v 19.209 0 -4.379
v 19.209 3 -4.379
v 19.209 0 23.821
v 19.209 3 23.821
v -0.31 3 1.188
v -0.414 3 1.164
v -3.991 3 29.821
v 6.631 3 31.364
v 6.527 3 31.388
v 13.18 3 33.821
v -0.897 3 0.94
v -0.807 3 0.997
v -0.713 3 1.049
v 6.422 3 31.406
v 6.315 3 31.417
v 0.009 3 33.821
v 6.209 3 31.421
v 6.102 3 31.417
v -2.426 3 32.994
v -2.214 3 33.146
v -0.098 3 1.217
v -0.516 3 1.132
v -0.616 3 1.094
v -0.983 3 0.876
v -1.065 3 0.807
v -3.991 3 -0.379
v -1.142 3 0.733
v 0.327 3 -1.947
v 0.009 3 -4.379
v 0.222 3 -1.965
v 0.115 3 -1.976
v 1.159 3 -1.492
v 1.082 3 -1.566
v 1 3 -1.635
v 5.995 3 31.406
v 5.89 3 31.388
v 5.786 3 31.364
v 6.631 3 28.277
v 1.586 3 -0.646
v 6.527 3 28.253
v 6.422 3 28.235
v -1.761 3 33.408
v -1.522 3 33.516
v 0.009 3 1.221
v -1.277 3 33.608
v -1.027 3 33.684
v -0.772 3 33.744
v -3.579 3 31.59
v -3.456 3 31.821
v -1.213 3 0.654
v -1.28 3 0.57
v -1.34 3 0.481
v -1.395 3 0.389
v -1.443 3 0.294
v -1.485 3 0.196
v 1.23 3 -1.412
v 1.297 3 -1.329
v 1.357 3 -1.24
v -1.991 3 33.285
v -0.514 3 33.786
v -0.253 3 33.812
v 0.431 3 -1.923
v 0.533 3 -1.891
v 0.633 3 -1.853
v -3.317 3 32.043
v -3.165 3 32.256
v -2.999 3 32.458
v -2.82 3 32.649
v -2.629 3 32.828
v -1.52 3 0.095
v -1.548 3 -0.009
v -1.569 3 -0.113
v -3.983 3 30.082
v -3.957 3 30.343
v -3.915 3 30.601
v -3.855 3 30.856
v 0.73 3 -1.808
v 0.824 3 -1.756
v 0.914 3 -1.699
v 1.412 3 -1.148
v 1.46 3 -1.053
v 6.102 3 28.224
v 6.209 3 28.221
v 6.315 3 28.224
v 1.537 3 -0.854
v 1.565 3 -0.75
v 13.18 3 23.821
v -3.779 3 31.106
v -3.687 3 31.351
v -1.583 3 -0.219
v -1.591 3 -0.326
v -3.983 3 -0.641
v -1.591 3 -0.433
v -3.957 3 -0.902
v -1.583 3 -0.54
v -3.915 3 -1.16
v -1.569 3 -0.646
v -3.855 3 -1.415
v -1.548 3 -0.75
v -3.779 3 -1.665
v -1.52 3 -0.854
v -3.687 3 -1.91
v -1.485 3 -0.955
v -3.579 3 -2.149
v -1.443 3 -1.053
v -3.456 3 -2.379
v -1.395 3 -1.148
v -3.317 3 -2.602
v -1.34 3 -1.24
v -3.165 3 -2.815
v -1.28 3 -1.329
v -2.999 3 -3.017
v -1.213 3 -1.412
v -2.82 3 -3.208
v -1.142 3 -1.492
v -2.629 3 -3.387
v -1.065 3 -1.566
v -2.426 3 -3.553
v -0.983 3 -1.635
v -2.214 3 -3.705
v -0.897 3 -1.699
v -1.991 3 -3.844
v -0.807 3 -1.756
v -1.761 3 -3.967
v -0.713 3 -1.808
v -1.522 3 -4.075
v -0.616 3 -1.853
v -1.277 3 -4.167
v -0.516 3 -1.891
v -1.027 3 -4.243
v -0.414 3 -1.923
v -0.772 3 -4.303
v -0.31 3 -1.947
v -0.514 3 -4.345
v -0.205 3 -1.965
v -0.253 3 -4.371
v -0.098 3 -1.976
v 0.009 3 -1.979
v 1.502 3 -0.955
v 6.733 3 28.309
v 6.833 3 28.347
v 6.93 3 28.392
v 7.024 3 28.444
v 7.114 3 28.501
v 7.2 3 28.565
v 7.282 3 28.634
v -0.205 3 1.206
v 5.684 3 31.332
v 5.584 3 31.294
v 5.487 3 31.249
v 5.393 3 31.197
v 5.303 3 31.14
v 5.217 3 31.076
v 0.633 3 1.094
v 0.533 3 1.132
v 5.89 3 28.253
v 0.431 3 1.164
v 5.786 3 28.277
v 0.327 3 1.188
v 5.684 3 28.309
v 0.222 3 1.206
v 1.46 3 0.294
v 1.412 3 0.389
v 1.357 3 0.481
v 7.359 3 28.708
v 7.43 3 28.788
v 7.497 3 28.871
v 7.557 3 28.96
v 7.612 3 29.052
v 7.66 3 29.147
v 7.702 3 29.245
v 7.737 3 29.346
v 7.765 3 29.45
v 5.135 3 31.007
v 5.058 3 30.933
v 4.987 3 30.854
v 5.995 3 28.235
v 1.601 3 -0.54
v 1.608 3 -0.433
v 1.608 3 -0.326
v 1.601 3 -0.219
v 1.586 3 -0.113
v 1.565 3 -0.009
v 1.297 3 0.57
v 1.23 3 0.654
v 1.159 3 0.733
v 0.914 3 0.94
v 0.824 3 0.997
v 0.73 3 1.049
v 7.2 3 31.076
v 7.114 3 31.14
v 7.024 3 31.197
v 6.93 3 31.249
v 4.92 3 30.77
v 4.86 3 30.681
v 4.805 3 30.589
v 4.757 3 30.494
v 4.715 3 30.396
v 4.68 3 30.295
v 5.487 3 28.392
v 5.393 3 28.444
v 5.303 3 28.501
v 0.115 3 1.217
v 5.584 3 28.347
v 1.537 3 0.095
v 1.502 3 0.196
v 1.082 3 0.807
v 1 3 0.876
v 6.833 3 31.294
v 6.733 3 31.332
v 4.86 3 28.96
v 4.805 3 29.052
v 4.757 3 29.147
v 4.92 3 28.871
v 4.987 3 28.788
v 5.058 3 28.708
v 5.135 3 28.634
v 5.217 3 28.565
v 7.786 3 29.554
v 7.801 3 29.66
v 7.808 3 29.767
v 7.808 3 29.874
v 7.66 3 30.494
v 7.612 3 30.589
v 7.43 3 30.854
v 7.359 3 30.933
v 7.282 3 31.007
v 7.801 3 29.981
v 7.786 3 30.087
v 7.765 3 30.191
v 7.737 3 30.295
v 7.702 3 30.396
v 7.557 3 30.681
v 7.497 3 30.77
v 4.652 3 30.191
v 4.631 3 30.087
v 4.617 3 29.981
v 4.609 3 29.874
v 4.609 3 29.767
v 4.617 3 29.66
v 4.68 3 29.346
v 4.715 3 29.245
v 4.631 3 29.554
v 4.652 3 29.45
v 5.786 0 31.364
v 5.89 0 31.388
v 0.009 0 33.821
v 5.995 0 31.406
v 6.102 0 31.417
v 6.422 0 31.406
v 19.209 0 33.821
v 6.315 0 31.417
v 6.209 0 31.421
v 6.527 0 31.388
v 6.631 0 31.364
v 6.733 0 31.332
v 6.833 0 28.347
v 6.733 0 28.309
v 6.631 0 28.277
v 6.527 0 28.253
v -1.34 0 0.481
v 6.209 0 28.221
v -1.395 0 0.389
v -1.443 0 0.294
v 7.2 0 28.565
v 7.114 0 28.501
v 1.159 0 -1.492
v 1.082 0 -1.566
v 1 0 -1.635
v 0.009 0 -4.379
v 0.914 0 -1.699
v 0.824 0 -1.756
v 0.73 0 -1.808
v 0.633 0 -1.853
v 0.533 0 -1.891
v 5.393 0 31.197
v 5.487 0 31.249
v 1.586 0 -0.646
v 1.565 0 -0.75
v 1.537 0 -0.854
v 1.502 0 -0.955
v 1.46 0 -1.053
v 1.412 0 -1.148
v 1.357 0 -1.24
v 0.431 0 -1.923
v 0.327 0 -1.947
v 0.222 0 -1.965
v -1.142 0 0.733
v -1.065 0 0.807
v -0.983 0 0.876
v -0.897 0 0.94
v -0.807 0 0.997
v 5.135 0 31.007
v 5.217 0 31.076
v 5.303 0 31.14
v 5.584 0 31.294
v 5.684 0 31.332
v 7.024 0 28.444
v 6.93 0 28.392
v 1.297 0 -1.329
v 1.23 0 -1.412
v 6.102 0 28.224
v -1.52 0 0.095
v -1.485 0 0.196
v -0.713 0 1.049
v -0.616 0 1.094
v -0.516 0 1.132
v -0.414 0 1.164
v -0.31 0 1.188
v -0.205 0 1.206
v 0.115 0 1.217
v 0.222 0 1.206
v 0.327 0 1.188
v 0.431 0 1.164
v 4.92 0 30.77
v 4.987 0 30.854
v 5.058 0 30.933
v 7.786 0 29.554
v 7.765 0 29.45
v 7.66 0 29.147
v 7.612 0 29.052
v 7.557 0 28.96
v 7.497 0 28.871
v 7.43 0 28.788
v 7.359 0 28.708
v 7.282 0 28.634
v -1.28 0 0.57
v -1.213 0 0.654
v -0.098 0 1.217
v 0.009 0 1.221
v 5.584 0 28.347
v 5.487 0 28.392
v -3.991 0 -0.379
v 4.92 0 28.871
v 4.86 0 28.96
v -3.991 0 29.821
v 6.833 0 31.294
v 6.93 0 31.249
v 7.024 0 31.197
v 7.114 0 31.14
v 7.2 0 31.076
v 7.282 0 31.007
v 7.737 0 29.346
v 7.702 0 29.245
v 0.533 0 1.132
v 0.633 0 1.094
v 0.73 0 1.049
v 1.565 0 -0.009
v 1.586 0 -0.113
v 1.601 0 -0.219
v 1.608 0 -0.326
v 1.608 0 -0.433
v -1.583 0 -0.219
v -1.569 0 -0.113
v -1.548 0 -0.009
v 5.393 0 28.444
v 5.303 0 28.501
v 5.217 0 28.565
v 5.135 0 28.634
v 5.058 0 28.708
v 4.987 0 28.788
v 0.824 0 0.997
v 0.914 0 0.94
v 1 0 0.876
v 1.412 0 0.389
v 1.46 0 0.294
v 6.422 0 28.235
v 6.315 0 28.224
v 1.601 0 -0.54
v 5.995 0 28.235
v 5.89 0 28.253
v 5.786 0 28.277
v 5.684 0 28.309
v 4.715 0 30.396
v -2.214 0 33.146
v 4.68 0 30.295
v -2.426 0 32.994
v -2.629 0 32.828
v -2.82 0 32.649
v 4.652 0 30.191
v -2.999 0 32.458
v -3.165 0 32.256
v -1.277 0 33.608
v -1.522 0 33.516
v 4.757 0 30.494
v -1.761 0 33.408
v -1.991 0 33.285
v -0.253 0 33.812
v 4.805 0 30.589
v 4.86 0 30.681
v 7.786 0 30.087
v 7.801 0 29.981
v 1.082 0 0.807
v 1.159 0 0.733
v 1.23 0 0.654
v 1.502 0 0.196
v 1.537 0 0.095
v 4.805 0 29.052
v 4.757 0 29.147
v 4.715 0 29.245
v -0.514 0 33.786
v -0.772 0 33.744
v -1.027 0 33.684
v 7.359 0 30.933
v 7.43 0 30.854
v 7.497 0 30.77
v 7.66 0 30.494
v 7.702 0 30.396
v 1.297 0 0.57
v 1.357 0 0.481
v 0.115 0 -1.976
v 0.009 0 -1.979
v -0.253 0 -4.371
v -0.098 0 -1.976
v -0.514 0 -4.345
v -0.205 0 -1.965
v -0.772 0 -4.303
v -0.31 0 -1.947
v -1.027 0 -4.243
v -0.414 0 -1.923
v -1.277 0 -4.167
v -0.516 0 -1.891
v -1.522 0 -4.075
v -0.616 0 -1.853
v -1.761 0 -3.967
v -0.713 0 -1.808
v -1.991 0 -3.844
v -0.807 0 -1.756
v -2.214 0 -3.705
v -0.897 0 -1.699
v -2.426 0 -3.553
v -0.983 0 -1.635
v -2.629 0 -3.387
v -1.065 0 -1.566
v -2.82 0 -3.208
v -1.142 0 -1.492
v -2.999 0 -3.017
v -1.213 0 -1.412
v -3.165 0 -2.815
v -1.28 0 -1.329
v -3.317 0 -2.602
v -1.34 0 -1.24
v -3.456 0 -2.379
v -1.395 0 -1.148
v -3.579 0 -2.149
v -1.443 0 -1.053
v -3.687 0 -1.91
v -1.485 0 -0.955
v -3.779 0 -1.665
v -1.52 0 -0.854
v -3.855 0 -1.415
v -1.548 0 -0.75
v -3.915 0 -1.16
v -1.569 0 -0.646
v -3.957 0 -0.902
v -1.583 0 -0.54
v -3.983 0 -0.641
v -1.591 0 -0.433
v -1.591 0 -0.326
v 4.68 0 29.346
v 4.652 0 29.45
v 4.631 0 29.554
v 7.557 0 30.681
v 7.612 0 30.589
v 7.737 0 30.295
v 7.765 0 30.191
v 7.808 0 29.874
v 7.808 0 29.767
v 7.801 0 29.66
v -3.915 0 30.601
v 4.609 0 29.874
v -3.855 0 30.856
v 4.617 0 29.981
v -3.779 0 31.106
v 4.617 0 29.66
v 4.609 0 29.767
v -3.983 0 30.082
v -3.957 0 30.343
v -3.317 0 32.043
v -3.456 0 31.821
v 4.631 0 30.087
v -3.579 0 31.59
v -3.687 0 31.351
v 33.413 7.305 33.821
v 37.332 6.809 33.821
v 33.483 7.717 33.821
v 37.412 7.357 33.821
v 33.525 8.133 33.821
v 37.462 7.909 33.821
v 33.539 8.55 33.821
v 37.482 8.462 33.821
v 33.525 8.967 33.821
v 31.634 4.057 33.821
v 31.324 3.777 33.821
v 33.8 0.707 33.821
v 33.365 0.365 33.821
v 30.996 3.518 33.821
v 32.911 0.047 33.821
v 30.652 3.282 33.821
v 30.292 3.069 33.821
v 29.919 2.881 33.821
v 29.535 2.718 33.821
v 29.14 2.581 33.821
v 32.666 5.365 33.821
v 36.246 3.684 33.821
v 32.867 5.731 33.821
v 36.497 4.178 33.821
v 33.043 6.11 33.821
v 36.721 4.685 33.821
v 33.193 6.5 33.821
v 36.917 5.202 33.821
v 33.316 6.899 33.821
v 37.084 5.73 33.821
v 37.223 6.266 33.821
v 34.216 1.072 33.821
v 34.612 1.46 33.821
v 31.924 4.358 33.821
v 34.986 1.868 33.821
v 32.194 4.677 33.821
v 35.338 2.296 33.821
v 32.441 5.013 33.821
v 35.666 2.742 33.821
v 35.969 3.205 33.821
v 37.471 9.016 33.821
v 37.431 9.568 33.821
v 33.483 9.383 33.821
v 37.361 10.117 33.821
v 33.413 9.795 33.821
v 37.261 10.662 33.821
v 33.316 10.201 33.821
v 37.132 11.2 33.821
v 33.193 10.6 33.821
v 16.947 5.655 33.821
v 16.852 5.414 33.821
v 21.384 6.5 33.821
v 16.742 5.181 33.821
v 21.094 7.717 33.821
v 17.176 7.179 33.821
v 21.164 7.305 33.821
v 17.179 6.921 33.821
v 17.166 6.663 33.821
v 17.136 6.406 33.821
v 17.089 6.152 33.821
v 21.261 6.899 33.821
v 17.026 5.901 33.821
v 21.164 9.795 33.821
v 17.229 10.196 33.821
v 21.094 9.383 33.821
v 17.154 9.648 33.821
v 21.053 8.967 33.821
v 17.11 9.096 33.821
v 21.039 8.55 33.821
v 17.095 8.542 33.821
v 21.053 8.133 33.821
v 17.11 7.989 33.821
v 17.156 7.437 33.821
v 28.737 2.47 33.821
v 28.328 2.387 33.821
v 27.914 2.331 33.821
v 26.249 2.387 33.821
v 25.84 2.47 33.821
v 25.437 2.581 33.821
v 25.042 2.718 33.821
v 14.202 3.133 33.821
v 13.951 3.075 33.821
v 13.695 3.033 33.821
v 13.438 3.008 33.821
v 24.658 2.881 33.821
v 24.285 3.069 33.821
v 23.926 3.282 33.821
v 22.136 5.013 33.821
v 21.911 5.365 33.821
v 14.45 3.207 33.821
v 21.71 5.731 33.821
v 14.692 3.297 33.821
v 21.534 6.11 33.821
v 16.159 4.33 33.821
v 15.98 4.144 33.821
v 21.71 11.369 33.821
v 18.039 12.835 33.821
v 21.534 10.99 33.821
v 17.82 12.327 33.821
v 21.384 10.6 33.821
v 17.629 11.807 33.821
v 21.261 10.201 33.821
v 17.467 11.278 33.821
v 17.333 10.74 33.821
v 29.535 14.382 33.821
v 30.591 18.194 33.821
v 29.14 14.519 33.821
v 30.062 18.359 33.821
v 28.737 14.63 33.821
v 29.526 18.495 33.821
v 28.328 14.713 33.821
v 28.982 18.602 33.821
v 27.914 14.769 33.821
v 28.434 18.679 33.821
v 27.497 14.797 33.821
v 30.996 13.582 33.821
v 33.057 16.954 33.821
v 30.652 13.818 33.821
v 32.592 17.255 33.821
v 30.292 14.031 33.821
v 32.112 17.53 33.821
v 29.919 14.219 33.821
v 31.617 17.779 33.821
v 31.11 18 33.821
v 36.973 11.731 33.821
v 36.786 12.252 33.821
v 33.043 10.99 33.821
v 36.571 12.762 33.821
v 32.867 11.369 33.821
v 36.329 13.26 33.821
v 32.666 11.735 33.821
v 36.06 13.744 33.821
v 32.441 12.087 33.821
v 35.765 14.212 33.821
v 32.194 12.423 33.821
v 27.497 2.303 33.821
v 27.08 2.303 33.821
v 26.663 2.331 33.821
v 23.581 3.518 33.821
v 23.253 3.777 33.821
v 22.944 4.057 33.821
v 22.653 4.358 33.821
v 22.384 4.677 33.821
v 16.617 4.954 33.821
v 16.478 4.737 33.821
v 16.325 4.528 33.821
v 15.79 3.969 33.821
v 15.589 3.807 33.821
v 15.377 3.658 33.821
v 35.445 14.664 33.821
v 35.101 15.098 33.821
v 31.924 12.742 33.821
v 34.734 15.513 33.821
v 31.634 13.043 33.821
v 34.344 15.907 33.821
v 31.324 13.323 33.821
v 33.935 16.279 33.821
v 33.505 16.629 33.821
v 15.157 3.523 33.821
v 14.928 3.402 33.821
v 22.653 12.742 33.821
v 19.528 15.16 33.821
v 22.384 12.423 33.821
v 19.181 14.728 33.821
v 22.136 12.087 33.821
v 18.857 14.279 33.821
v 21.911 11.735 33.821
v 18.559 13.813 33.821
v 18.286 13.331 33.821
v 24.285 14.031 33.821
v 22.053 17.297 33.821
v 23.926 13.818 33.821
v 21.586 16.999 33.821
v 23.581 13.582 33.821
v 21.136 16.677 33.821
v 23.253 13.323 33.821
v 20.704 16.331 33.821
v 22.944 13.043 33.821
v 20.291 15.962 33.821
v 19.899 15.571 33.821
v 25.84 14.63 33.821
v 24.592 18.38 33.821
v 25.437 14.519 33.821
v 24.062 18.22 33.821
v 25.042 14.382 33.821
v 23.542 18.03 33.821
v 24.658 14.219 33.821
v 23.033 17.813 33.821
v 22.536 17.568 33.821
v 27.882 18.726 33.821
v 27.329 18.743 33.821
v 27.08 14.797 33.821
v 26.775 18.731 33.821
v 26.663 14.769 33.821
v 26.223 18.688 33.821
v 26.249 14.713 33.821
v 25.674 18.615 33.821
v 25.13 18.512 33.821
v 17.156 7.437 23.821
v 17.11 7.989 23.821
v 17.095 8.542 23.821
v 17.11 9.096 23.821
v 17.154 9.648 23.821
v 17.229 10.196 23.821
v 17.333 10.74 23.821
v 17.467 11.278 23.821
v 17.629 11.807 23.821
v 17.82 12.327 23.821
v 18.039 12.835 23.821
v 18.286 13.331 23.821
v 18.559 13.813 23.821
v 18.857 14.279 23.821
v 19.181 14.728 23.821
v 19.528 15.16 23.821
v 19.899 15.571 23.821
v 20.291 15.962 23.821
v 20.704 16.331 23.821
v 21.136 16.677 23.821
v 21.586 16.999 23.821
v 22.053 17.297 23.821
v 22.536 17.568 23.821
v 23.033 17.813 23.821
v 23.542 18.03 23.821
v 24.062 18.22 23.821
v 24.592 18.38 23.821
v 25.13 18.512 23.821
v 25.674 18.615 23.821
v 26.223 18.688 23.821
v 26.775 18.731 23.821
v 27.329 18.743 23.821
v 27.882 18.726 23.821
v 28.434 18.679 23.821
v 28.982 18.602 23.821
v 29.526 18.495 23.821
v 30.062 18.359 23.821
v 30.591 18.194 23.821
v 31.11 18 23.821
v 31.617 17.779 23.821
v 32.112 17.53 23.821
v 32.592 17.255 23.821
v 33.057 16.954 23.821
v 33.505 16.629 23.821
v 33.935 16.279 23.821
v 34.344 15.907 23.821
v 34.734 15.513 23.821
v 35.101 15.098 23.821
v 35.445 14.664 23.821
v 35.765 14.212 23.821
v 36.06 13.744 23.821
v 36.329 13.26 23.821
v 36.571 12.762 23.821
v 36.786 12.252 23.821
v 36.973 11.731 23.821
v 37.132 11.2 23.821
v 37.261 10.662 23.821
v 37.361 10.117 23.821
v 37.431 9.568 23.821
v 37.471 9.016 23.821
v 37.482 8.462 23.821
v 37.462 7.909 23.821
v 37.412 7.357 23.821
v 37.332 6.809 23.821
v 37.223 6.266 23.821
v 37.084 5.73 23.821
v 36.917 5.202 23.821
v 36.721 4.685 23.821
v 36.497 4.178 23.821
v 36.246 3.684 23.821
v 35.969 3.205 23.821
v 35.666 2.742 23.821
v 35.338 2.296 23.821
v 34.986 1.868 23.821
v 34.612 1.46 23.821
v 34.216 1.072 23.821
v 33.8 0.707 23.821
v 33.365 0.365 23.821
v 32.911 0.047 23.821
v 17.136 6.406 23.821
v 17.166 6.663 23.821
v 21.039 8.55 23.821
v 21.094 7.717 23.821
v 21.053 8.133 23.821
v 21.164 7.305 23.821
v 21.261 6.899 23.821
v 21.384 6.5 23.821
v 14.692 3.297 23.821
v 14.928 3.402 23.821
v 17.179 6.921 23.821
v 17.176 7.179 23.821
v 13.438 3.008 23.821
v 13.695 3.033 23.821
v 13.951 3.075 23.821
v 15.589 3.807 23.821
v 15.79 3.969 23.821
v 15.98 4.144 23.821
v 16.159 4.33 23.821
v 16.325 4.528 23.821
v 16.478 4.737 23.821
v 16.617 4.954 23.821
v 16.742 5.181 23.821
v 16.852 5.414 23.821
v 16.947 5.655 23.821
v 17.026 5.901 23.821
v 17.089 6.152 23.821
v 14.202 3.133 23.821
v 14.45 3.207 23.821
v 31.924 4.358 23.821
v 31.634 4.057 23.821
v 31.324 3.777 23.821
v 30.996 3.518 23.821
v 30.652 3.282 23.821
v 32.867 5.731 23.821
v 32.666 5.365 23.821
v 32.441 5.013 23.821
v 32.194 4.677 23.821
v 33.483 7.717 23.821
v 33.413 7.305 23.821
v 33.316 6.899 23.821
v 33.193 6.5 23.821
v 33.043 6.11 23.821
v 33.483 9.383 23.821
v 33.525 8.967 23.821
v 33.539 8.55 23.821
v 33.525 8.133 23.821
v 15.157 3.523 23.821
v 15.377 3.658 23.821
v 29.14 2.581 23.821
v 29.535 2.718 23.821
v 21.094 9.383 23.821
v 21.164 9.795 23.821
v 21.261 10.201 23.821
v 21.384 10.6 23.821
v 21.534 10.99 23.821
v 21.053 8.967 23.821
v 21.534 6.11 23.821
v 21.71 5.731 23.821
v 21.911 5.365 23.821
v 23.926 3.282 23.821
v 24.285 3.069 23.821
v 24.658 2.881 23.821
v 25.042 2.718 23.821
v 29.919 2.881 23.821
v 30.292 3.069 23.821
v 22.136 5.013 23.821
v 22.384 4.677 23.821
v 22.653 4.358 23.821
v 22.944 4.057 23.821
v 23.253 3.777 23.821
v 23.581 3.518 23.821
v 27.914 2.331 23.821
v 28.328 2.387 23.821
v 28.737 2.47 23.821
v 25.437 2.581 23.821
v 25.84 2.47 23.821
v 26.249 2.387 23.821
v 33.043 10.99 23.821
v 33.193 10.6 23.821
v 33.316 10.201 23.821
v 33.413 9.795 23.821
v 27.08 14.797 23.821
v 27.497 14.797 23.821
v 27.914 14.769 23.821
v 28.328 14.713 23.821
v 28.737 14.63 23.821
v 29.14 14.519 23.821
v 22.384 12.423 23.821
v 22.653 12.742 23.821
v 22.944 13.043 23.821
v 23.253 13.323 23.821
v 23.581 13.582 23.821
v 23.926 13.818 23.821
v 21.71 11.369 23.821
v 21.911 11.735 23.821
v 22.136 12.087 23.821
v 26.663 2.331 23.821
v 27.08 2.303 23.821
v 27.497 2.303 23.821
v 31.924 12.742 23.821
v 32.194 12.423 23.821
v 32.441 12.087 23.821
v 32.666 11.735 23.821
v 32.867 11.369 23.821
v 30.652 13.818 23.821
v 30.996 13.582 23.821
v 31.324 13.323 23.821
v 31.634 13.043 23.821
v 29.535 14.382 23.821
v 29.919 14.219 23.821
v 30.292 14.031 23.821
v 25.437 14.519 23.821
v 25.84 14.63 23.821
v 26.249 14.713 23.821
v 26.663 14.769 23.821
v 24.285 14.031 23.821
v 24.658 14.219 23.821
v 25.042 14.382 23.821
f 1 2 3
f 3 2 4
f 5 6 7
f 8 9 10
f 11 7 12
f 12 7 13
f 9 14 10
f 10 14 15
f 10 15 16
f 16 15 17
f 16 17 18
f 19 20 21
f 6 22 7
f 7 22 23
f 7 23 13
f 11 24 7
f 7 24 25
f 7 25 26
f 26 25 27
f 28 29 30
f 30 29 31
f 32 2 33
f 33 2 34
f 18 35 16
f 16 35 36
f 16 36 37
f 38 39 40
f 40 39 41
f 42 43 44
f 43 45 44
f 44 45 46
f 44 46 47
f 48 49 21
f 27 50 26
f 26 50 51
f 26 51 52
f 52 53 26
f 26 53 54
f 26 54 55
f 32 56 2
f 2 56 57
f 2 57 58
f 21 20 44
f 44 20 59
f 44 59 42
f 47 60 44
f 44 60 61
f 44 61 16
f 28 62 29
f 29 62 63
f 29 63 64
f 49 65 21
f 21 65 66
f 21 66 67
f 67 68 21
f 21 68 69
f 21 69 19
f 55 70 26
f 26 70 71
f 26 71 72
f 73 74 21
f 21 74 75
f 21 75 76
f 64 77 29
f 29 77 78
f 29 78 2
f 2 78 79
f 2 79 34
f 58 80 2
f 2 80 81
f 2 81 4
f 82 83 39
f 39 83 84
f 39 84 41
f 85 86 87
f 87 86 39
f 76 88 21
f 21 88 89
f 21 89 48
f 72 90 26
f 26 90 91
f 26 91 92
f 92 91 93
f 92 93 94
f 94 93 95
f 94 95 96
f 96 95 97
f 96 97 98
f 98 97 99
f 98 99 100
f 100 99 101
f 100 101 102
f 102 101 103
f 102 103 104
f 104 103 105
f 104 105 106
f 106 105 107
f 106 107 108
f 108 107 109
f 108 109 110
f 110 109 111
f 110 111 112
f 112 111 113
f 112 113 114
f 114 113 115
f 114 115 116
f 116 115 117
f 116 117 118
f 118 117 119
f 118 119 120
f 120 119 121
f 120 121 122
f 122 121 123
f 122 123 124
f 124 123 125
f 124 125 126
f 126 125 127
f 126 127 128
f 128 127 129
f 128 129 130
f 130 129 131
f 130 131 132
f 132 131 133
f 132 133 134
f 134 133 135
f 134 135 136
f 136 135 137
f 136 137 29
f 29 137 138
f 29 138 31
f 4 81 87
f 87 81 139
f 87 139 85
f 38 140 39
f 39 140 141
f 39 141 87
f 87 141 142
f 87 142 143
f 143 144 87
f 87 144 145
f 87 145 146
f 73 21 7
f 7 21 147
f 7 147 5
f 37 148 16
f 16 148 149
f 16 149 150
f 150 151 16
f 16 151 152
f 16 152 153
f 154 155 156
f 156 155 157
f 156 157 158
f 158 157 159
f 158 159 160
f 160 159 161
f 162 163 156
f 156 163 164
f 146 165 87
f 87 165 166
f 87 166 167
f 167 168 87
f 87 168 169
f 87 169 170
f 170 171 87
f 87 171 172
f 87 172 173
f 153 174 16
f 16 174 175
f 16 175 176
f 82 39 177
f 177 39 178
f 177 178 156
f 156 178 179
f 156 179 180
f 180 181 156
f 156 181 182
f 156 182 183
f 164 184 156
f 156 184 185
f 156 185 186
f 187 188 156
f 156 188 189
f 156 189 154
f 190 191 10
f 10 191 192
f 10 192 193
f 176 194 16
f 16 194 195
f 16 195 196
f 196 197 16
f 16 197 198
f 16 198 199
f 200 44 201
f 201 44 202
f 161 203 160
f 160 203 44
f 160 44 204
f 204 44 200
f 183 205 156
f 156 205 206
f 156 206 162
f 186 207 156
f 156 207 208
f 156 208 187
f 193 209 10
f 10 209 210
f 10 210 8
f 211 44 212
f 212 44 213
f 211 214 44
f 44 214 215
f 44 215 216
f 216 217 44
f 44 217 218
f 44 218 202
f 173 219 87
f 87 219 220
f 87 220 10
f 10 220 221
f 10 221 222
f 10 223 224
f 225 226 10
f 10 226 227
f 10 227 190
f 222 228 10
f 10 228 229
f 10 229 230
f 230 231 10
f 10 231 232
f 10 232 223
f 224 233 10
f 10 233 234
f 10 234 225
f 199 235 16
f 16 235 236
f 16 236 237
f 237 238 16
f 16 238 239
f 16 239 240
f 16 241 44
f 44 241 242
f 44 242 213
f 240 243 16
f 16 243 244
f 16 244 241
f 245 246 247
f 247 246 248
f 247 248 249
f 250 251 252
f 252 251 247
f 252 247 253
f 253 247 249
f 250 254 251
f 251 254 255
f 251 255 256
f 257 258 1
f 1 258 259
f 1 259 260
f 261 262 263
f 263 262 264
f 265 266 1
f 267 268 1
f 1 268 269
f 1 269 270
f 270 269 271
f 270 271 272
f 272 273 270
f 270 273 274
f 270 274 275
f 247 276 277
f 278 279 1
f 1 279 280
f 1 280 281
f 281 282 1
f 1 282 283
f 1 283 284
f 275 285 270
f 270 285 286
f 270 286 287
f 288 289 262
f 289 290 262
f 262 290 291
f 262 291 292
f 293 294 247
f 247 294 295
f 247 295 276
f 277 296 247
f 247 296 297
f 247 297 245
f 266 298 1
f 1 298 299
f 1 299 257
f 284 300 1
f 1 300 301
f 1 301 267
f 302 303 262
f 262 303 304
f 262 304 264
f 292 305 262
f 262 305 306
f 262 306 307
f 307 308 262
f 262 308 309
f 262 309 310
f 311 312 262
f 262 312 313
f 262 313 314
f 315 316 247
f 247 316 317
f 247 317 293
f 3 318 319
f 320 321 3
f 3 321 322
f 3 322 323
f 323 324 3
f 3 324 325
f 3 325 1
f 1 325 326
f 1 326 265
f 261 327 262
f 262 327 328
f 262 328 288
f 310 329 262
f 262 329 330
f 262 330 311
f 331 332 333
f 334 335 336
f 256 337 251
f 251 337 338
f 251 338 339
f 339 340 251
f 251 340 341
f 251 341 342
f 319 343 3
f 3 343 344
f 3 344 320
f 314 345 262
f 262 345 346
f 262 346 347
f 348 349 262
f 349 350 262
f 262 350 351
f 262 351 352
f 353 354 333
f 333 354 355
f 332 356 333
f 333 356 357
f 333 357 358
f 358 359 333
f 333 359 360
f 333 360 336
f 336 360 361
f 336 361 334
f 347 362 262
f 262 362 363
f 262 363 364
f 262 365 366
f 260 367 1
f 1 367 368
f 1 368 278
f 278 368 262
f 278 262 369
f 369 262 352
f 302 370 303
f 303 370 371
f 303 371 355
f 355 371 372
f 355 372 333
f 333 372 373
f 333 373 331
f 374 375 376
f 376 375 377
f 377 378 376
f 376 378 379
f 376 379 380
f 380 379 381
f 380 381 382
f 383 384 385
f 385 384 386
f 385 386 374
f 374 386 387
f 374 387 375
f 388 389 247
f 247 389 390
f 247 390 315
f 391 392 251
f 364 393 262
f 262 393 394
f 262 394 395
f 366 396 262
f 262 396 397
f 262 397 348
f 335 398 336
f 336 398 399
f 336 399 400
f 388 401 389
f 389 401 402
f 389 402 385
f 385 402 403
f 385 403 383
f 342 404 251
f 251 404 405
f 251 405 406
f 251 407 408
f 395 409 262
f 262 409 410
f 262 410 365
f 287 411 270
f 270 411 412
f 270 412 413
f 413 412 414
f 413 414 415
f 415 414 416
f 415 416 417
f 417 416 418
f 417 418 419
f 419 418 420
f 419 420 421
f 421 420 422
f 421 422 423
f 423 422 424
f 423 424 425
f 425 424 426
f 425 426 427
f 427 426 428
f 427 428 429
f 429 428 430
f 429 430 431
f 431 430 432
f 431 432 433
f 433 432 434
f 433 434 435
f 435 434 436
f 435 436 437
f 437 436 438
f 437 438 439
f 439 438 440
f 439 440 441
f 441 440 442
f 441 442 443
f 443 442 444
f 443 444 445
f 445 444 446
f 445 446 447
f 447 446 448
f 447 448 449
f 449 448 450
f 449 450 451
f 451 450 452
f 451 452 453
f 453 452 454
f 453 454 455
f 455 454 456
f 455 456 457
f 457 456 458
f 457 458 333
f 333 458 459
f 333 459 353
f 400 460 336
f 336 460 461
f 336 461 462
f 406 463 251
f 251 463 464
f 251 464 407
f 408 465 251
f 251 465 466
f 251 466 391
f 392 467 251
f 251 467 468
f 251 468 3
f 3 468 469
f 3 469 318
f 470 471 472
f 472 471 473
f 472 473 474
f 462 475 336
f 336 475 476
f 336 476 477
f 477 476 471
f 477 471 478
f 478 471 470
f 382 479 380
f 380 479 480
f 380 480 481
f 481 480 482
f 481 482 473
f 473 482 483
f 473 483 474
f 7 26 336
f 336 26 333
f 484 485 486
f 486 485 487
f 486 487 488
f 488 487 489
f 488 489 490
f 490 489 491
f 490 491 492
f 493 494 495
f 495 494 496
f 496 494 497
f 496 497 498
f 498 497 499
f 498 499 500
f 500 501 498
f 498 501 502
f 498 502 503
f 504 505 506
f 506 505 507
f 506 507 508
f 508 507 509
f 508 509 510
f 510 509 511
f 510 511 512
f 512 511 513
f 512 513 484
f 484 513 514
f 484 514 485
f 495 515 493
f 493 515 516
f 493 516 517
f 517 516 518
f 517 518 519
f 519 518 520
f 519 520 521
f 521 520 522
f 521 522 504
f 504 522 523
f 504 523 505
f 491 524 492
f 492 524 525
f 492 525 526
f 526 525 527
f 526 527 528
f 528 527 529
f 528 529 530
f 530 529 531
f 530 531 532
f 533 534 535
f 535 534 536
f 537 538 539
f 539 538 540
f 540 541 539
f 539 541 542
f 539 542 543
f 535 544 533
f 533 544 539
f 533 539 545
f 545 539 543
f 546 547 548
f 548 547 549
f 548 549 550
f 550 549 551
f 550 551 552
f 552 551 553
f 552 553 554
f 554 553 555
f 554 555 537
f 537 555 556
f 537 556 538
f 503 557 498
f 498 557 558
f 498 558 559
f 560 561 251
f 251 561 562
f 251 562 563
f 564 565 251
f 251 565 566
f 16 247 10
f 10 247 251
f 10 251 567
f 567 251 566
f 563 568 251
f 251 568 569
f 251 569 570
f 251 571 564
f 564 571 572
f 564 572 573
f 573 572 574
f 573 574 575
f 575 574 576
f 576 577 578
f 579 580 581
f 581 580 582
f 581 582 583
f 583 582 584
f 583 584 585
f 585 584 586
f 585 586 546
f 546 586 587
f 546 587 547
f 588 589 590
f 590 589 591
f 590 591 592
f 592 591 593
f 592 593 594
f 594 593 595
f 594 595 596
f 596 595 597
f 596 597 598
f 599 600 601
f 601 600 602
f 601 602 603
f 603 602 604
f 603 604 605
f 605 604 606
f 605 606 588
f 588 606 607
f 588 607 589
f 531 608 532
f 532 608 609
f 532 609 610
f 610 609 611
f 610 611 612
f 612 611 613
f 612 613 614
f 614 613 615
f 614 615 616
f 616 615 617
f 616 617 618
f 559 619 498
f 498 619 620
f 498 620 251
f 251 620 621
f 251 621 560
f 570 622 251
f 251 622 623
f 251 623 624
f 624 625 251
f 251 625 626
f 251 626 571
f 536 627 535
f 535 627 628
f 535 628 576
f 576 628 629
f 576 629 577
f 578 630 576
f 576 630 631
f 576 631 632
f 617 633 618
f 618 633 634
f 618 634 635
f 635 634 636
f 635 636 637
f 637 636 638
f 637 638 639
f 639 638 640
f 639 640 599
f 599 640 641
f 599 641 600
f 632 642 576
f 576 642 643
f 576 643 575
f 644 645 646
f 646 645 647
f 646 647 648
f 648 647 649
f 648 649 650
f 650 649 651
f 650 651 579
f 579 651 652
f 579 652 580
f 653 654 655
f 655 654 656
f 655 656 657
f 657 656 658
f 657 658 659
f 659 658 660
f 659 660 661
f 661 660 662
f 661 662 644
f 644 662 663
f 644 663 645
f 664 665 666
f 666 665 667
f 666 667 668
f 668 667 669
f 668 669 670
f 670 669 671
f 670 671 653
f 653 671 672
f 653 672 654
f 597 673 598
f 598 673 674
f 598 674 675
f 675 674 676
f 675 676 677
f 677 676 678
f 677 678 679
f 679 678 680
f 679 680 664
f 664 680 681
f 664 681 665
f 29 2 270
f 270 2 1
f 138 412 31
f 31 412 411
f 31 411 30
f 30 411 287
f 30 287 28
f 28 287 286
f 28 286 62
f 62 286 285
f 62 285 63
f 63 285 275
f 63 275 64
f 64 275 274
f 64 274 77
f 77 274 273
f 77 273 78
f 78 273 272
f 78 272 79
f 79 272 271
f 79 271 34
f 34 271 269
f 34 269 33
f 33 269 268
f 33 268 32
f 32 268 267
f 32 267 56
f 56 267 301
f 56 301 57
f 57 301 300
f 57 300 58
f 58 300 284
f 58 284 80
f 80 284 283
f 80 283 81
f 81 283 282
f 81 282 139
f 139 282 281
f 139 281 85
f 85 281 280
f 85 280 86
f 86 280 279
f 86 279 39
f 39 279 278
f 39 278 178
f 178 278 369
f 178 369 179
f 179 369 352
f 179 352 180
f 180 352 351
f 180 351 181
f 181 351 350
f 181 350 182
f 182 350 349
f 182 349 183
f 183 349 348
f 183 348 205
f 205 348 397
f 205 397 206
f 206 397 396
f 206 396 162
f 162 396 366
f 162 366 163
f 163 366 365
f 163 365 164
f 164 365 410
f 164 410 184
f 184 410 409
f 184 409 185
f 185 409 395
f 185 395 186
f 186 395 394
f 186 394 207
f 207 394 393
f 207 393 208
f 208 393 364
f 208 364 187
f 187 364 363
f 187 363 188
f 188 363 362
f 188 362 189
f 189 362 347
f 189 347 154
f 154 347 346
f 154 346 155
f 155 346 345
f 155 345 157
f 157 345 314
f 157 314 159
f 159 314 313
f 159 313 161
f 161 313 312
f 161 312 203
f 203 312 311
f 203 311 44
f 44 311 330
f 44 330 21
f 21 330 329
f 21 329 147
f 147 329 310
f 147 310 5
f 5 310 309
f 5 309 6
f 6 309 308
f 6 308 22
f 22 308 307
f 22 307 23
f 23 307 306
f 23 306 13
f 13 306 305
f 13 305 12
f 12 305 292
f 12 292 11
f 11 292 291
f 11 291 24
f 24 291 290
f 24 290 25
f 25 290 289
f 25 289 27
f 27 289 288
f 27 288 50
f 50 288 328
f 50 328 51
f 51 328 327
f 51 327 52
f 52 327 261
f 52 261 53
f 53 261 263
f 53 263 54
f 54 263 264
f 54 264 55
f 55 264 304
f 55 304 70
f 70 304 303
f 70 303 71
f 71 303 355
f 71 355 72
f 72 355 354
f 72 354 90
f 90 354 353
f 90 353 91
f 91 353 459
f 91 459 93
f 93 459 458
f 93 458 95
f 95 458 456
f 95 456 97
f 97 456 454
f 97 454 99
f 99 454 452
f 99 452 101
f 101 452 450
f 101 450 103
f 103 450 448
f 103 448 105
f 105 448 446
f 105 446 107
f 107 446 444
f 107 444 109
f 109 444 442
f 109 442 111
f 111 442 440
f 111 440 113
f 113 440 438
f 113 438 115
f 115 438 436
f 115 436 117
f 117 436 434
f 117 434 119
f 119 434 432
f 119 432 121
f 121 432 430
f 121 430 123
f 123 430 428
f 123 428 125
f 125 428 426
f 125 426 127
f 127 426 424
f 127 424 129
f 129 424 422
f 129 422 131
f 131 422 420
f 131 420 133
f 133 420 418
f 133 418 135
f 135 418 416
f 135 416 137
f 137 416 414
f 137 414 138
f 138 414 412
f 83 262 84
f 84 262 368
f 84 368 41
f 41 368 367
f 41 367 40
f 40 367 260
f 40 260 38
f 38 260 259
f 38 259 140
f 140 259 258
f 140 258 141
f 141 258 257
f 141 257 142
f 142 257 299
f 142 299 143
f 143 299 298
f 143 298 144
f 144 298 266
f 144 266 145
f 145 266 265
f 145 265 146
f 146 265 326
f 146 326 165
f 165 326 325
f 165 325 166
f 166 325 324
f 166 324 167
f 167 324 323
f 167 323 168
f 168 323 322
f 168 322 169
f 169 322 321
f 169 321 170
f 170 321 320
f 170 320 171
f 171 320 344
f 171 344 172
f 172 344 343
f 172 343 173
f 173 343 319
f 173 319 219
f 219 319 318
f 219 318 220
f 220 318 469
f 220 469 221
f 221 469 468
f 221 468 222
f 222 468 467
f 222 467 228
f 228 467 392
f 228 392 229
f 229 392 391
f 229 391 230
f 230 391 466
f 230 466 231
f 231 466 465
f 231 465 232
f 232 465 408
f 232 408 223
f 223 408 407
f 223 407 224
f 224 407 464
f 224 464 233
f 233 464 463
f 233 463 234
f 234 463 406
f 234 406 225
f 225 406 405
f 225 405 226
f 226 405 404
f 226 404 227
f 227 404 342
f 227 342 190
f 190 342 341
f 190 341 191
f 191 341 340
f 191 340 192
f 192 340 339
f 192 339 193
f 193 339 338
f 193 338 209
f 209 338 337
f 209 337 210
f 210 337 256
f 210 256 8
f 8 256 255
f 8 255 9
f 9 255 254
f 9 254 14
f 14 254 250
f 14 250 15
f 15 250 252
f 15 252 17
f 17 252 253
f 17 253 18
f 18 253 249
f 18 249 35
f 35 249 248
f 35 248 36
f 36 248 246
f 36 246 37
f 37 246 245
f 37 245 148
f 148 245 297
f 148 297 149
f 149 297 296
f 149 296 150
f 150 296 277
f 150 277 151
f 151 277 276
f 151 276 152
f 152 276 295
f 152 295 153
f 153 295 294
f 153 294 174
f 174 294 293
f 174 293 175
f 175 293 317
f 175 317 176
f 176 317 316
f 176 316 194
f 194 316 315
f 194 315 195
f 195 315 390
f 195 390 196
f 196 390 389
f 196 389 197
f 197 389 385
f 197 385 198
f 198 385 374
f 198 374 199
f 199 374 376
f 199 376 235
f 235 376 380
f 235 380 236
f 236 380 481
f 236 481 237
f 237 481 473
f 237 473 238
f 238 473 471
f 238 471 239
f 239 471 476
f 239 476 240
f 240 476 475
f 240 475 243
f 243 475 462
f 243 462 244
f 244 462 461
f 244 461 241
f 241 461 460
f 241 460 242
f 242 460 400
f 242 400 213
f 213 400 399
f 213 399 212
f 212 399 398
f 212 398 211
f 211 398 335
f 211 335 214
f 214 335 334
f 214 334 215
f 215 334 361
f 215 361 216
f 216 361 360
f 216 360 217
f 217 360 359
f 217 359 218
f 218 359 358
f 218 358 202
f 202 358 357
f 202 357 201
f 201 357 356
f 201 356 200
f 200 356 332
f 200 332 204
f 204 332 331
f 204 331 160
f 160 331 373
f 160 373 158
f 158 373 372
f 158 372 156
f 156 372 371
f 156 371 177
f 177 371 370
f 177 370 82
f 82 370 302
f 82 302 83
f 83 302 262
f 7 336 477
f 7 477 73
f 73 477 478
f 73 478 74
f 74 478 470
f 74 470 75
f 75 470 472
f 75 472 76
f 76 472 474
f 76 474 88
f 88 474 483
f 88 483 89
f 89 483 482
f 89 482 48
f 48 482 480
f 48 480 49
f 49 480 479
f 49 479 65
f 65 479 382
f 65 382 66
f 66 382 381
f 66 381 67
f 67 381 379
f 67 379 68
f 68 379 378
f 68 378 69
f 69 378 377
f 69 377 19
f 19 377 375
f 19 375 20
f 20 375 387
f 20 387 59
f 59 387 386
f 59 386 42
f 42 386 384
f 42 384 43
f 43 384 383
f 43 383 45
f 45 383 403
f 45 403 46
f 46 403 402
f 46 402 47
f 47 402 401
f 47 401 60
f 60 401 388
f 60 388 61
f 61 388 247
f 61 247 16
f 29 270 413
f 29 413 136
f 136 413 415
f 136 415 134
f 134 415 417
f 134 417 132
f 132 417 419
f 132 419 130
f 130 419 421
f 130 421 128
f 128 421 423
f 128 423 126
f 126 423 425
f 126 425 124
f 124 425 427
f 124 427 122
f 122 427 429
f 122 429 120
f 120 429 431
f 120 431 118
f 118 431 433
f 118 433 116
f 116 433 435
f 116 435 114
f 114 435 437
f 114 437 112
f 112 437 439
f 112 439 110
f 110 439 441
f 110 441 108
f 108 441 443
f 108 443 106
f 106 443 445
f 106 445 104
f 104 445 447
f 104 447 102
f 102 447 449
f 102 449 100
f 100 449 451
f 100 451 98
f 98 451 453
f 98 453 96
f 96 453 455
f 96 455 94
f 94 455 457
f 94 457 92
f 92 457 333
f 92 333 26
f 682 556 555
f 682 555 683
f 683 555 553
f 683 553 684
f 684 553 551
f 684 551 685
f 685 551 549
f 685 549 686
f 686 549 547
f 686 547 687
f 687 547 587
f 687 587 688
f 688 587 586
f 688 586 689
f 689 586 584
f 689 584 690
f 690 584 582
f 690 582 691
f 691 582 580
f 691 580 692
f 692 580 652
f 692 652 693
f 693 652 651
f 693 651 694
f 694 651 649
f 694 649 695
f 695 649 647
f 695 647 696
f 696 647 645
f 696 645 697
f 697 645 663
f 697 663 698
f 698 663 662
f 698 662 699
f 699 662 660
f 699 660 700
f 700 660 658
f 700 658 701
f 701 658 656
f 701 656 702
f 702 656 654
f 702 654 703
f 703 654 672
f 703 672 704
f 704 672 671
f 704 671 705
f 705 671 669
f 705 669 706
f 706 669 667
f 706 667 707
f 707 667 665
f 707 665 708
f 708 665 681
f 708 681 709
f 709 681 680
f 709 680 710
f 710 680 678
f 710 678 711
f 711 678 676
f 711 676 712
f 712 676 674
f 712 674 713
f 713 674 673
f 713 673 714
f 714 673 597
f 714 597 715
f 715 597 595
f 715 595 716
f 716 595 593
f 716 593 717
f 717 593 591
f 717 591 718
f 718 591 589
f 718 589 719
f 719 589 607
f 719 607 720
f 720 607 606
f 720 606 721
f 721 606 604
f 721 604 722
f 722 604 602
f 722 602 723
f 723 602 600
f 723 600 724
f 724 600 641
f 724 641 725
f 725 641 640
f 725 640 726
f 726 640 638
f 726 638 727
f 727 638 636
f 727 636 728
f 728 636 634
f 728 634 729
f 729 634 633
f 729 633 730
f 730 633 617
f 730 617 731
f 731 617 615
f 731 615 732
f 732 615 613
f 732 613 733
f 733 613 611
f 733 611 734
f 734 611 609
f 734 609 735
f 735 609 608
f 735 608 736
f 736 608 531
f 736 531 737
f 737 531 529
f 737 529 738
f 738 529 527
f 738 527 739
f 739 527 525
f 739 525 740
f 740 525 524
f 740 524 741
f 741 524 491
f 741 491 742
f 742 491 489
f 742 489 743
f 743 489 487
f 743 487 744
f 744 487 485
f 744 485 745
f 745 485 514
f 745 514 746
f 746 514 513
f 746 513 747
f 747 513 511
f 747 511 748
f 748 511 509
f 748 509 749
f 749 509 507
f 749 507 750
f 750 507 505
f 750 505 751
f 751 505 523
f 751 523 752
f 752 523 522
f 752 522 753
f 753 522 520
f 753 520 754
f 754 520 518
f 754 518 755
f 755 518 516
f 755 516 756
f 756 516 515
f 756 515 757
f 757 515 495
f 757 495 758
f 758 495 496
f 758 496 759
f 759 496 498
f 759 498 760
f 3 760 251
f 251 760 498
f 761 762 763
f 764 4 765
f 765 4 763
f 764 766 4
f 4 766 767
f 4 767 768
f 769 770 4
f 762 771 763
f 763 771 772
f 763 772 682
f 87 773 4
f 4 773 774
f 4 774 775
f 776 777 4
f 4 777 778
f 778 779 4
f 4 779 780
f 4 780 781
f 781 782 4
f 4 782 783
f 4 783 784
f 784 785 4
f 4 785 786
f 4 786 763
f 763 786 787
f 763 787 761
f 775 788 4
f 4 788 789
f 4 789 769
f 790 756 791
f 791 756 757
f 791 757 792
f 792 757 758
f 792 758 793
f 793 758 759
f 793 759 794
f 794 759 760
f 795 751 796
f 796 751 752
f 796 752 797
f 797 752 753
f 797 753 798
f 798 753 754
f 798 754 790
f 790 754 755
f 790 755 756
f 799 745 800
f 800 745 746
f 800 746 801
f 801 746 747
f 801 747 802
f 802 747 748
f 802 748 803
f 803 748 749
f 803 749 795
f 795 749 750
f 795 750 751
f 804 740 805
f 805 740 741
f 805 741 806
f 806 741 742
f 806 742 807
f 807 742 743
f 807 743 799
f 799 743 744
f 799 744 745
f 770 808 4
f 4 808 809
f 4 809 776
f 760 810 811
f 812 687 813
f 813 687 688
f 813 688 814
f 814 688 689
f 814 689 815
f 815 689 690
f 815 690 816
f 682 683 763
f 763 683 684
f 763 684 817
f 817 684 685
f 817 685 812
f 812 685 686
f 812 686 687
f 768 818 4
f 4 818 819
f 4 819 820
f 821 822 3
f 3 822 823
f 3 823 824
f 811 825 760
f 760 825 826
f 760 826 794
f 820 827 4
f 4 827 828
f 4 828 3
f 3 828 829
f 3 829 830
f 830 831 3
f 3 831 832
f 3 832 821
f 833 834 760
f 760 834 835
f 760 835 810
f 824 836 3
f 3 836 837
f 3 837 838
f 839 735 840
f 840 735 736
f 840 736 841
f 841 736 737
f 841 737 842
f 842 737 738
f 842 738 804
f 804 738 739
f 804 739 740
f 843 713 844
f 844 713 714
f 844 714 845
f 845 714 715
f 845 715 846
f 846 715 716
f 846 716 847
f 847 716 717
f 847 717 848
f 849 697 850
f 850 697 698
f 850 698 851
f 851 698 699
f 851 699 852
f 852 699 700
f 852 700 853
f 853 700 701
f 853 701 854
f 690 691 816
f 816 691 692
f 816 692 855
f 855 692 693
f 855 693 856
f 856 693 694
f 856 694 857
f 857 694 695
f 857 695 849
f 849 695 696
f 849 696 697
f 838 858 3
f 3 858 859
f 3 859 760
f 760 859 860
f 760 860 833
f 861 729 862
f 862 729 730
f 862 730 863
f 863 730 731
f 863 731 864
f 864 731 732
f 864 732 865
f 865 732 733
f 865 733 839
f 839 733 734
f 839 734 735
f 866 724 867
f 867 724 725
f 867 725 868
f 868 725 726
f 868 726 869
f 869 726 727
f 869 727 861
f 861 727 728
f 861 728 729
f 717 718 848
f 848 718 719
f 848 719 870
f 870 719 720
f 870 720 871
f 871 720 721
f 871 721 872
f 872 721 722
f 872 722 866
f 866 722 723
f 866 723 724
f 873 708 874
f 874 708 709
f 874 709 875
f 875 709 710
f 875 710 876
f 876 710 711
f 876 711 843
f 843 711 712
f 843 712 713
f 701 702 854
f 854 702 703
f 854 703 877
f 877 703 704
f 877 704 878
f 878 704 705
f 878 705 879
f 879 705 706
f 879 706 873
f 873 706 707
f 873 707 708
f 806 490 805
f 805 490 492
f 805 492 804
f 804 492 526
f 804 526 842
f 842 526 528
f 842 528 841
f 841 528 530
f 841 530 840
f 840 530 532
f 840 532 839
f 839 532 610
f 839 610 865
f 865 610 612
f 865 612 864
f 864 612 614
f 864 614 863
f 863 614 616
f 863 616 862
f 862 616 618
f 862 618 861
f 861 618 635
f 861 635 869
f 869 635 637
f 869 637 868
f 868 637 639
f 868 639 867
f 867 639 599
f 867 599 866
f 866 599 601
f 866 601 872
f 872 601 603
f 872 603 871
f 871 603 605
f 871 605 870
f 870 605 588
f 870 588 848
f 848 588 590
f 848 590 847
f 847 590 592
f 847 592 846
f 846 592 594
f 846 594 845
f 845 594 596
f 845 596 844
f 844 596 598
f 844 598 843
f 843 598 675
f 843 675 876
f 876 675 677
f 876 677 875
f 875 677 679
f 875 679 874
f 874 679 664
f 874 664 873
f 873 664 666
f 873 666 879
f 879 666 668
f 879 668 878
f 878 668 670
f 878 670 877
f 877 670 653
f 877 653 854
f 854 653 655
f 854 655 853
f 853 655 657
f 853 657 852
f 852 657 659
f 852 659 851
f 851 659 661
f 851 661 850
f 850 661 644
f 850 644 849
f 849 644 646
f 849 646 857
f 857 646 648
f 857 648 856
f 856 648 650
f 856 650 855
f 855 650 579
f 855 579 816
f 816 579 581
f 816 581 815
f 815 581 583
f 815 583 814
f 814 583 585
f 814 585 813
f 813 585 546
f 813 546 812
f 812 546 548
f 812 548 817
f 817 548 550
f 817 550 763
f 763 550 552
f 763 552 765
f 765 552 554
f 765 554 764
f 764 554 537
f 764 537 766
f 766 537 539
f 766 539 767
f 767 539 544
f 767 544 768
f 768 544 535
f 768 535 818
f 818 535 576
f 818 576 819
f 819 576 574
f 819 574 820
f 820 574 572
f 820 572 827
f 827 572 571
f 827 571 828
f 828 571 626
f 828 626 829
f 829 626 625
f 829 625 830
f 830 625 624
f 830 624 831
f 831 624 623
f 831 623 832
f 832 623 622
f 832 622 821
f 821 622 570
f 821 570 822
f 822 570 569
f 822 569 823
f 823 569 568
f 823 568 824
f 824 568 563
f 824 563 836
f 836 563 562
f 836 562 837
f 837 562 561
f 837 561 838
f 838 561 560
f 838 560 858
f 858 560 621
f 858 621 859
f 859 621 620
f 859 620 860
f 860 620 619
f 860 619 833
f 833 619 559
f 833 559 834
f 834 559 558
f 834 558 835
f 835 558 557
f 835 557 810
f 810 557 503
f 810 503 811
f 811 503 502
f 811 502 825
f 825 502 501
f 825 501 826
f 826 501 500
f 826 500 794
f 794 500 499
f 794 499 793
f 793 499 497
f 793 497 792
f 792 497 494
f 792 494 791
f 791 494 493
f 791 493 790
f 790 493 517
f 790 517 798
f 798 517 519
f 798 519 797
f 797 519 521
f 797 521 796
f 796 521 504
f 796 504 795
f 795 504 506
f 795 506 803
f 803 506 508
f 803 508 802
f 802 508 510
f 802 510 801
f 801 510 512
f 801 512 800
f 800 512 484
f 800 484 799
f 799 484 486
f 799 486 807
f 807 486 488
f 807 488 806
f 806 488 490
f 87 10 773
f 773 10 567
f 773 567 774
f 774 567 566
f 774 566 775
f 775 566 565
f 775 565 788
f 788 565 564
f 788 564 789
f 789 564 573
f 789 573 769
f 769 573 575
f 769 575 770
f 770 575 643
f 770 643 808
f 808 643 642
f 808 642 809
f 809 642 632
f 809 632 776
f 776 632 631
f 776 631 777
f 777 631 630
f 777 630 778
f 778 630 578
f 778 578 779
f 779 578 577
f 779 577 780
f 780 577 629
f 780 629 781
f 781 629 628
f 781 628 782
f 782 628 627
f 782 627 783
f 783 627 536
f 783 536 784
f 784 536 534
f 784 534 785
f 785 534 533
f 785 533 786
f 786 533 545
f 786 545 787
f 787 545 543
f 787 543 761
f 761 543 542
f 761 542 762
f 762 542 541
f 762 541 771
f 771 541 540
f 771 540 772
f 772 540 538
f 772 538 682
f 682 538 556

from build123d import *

# Parameters (mm, degrees)
SKETCH1_W           = 23.2
SKETCH1_H           = 38.2
SKETCH1_R           = 1.6
BOSS_EXTRUDE1_DEPTH = 3
FILLET1_R           = 4
SKETCH2_R           = 6.25
BOSS_EXTRUDE2_DEPTH = 10
FILLET2_R           = 4


with BuildPart() as part:
    # Sketch1 → Boss-Extrude1 (new body)
    with BuildSketch(Plane(origin=(0, 0, 0), x_dir=(1, 0, 0), z_dir=(0, 1, 0))):
        with Locations((7.60855083, -14.720520933)):
            Rectangle(SKETCH1_W, SKETCH1_H)
        with Locations((0.00855083, 0.379479067)):
            Circle(SKETCH1_R, mode=Mode.SUBTRACT)
        with Locations((6.20855083, -29.820520933)):
            Circle(SKETCH1_R, mode=Mode.SUBTRACT)
    extrude(amount=BOSS_EXTRUDE1_DEPTH)

    # Fillet1
    fillet1_edges = [part.edges().sort_by_distance(p)[0] for p in [
        (-3.99144917, 1.5, -4.379479067),
        (-3.99144917, 1.5, 33.820520933),
    ]]
    fillet(fillet1_edges, radius=FILLET1_R)

    # Sketch2 → Boss-Extrude2 (add)
    with BuildSketch(Plane.XY.offset(33.820520933)):
        with BuildLine():
            Line((19.20855083, 0), (32.911096752, 0.047304531))
            ThreePointArc((32.911096752, 0.047304531), (28.967391183, 18.604369594), (19.20855083, 2.335303477))
            Line((19.20855083, 2.335303477), (19.20855083, 0))
        make_face()
        with Locations((27.28855083, 8.55)):
            Circle(SKETCH2_R, mode=Mode.SUBTRACT)
    extrude(amount=-BOSS_EXTRUDE2_DEPTH)

    # Fillet2
    fillet2_edges = [part.edges().sort_by_distance(p)[0] for p in [
        (18.738325519, 3, 28.820520933),
    ]]
    fillet(fillet2_edges, radius=FILLET2_R)


solid = part.part
